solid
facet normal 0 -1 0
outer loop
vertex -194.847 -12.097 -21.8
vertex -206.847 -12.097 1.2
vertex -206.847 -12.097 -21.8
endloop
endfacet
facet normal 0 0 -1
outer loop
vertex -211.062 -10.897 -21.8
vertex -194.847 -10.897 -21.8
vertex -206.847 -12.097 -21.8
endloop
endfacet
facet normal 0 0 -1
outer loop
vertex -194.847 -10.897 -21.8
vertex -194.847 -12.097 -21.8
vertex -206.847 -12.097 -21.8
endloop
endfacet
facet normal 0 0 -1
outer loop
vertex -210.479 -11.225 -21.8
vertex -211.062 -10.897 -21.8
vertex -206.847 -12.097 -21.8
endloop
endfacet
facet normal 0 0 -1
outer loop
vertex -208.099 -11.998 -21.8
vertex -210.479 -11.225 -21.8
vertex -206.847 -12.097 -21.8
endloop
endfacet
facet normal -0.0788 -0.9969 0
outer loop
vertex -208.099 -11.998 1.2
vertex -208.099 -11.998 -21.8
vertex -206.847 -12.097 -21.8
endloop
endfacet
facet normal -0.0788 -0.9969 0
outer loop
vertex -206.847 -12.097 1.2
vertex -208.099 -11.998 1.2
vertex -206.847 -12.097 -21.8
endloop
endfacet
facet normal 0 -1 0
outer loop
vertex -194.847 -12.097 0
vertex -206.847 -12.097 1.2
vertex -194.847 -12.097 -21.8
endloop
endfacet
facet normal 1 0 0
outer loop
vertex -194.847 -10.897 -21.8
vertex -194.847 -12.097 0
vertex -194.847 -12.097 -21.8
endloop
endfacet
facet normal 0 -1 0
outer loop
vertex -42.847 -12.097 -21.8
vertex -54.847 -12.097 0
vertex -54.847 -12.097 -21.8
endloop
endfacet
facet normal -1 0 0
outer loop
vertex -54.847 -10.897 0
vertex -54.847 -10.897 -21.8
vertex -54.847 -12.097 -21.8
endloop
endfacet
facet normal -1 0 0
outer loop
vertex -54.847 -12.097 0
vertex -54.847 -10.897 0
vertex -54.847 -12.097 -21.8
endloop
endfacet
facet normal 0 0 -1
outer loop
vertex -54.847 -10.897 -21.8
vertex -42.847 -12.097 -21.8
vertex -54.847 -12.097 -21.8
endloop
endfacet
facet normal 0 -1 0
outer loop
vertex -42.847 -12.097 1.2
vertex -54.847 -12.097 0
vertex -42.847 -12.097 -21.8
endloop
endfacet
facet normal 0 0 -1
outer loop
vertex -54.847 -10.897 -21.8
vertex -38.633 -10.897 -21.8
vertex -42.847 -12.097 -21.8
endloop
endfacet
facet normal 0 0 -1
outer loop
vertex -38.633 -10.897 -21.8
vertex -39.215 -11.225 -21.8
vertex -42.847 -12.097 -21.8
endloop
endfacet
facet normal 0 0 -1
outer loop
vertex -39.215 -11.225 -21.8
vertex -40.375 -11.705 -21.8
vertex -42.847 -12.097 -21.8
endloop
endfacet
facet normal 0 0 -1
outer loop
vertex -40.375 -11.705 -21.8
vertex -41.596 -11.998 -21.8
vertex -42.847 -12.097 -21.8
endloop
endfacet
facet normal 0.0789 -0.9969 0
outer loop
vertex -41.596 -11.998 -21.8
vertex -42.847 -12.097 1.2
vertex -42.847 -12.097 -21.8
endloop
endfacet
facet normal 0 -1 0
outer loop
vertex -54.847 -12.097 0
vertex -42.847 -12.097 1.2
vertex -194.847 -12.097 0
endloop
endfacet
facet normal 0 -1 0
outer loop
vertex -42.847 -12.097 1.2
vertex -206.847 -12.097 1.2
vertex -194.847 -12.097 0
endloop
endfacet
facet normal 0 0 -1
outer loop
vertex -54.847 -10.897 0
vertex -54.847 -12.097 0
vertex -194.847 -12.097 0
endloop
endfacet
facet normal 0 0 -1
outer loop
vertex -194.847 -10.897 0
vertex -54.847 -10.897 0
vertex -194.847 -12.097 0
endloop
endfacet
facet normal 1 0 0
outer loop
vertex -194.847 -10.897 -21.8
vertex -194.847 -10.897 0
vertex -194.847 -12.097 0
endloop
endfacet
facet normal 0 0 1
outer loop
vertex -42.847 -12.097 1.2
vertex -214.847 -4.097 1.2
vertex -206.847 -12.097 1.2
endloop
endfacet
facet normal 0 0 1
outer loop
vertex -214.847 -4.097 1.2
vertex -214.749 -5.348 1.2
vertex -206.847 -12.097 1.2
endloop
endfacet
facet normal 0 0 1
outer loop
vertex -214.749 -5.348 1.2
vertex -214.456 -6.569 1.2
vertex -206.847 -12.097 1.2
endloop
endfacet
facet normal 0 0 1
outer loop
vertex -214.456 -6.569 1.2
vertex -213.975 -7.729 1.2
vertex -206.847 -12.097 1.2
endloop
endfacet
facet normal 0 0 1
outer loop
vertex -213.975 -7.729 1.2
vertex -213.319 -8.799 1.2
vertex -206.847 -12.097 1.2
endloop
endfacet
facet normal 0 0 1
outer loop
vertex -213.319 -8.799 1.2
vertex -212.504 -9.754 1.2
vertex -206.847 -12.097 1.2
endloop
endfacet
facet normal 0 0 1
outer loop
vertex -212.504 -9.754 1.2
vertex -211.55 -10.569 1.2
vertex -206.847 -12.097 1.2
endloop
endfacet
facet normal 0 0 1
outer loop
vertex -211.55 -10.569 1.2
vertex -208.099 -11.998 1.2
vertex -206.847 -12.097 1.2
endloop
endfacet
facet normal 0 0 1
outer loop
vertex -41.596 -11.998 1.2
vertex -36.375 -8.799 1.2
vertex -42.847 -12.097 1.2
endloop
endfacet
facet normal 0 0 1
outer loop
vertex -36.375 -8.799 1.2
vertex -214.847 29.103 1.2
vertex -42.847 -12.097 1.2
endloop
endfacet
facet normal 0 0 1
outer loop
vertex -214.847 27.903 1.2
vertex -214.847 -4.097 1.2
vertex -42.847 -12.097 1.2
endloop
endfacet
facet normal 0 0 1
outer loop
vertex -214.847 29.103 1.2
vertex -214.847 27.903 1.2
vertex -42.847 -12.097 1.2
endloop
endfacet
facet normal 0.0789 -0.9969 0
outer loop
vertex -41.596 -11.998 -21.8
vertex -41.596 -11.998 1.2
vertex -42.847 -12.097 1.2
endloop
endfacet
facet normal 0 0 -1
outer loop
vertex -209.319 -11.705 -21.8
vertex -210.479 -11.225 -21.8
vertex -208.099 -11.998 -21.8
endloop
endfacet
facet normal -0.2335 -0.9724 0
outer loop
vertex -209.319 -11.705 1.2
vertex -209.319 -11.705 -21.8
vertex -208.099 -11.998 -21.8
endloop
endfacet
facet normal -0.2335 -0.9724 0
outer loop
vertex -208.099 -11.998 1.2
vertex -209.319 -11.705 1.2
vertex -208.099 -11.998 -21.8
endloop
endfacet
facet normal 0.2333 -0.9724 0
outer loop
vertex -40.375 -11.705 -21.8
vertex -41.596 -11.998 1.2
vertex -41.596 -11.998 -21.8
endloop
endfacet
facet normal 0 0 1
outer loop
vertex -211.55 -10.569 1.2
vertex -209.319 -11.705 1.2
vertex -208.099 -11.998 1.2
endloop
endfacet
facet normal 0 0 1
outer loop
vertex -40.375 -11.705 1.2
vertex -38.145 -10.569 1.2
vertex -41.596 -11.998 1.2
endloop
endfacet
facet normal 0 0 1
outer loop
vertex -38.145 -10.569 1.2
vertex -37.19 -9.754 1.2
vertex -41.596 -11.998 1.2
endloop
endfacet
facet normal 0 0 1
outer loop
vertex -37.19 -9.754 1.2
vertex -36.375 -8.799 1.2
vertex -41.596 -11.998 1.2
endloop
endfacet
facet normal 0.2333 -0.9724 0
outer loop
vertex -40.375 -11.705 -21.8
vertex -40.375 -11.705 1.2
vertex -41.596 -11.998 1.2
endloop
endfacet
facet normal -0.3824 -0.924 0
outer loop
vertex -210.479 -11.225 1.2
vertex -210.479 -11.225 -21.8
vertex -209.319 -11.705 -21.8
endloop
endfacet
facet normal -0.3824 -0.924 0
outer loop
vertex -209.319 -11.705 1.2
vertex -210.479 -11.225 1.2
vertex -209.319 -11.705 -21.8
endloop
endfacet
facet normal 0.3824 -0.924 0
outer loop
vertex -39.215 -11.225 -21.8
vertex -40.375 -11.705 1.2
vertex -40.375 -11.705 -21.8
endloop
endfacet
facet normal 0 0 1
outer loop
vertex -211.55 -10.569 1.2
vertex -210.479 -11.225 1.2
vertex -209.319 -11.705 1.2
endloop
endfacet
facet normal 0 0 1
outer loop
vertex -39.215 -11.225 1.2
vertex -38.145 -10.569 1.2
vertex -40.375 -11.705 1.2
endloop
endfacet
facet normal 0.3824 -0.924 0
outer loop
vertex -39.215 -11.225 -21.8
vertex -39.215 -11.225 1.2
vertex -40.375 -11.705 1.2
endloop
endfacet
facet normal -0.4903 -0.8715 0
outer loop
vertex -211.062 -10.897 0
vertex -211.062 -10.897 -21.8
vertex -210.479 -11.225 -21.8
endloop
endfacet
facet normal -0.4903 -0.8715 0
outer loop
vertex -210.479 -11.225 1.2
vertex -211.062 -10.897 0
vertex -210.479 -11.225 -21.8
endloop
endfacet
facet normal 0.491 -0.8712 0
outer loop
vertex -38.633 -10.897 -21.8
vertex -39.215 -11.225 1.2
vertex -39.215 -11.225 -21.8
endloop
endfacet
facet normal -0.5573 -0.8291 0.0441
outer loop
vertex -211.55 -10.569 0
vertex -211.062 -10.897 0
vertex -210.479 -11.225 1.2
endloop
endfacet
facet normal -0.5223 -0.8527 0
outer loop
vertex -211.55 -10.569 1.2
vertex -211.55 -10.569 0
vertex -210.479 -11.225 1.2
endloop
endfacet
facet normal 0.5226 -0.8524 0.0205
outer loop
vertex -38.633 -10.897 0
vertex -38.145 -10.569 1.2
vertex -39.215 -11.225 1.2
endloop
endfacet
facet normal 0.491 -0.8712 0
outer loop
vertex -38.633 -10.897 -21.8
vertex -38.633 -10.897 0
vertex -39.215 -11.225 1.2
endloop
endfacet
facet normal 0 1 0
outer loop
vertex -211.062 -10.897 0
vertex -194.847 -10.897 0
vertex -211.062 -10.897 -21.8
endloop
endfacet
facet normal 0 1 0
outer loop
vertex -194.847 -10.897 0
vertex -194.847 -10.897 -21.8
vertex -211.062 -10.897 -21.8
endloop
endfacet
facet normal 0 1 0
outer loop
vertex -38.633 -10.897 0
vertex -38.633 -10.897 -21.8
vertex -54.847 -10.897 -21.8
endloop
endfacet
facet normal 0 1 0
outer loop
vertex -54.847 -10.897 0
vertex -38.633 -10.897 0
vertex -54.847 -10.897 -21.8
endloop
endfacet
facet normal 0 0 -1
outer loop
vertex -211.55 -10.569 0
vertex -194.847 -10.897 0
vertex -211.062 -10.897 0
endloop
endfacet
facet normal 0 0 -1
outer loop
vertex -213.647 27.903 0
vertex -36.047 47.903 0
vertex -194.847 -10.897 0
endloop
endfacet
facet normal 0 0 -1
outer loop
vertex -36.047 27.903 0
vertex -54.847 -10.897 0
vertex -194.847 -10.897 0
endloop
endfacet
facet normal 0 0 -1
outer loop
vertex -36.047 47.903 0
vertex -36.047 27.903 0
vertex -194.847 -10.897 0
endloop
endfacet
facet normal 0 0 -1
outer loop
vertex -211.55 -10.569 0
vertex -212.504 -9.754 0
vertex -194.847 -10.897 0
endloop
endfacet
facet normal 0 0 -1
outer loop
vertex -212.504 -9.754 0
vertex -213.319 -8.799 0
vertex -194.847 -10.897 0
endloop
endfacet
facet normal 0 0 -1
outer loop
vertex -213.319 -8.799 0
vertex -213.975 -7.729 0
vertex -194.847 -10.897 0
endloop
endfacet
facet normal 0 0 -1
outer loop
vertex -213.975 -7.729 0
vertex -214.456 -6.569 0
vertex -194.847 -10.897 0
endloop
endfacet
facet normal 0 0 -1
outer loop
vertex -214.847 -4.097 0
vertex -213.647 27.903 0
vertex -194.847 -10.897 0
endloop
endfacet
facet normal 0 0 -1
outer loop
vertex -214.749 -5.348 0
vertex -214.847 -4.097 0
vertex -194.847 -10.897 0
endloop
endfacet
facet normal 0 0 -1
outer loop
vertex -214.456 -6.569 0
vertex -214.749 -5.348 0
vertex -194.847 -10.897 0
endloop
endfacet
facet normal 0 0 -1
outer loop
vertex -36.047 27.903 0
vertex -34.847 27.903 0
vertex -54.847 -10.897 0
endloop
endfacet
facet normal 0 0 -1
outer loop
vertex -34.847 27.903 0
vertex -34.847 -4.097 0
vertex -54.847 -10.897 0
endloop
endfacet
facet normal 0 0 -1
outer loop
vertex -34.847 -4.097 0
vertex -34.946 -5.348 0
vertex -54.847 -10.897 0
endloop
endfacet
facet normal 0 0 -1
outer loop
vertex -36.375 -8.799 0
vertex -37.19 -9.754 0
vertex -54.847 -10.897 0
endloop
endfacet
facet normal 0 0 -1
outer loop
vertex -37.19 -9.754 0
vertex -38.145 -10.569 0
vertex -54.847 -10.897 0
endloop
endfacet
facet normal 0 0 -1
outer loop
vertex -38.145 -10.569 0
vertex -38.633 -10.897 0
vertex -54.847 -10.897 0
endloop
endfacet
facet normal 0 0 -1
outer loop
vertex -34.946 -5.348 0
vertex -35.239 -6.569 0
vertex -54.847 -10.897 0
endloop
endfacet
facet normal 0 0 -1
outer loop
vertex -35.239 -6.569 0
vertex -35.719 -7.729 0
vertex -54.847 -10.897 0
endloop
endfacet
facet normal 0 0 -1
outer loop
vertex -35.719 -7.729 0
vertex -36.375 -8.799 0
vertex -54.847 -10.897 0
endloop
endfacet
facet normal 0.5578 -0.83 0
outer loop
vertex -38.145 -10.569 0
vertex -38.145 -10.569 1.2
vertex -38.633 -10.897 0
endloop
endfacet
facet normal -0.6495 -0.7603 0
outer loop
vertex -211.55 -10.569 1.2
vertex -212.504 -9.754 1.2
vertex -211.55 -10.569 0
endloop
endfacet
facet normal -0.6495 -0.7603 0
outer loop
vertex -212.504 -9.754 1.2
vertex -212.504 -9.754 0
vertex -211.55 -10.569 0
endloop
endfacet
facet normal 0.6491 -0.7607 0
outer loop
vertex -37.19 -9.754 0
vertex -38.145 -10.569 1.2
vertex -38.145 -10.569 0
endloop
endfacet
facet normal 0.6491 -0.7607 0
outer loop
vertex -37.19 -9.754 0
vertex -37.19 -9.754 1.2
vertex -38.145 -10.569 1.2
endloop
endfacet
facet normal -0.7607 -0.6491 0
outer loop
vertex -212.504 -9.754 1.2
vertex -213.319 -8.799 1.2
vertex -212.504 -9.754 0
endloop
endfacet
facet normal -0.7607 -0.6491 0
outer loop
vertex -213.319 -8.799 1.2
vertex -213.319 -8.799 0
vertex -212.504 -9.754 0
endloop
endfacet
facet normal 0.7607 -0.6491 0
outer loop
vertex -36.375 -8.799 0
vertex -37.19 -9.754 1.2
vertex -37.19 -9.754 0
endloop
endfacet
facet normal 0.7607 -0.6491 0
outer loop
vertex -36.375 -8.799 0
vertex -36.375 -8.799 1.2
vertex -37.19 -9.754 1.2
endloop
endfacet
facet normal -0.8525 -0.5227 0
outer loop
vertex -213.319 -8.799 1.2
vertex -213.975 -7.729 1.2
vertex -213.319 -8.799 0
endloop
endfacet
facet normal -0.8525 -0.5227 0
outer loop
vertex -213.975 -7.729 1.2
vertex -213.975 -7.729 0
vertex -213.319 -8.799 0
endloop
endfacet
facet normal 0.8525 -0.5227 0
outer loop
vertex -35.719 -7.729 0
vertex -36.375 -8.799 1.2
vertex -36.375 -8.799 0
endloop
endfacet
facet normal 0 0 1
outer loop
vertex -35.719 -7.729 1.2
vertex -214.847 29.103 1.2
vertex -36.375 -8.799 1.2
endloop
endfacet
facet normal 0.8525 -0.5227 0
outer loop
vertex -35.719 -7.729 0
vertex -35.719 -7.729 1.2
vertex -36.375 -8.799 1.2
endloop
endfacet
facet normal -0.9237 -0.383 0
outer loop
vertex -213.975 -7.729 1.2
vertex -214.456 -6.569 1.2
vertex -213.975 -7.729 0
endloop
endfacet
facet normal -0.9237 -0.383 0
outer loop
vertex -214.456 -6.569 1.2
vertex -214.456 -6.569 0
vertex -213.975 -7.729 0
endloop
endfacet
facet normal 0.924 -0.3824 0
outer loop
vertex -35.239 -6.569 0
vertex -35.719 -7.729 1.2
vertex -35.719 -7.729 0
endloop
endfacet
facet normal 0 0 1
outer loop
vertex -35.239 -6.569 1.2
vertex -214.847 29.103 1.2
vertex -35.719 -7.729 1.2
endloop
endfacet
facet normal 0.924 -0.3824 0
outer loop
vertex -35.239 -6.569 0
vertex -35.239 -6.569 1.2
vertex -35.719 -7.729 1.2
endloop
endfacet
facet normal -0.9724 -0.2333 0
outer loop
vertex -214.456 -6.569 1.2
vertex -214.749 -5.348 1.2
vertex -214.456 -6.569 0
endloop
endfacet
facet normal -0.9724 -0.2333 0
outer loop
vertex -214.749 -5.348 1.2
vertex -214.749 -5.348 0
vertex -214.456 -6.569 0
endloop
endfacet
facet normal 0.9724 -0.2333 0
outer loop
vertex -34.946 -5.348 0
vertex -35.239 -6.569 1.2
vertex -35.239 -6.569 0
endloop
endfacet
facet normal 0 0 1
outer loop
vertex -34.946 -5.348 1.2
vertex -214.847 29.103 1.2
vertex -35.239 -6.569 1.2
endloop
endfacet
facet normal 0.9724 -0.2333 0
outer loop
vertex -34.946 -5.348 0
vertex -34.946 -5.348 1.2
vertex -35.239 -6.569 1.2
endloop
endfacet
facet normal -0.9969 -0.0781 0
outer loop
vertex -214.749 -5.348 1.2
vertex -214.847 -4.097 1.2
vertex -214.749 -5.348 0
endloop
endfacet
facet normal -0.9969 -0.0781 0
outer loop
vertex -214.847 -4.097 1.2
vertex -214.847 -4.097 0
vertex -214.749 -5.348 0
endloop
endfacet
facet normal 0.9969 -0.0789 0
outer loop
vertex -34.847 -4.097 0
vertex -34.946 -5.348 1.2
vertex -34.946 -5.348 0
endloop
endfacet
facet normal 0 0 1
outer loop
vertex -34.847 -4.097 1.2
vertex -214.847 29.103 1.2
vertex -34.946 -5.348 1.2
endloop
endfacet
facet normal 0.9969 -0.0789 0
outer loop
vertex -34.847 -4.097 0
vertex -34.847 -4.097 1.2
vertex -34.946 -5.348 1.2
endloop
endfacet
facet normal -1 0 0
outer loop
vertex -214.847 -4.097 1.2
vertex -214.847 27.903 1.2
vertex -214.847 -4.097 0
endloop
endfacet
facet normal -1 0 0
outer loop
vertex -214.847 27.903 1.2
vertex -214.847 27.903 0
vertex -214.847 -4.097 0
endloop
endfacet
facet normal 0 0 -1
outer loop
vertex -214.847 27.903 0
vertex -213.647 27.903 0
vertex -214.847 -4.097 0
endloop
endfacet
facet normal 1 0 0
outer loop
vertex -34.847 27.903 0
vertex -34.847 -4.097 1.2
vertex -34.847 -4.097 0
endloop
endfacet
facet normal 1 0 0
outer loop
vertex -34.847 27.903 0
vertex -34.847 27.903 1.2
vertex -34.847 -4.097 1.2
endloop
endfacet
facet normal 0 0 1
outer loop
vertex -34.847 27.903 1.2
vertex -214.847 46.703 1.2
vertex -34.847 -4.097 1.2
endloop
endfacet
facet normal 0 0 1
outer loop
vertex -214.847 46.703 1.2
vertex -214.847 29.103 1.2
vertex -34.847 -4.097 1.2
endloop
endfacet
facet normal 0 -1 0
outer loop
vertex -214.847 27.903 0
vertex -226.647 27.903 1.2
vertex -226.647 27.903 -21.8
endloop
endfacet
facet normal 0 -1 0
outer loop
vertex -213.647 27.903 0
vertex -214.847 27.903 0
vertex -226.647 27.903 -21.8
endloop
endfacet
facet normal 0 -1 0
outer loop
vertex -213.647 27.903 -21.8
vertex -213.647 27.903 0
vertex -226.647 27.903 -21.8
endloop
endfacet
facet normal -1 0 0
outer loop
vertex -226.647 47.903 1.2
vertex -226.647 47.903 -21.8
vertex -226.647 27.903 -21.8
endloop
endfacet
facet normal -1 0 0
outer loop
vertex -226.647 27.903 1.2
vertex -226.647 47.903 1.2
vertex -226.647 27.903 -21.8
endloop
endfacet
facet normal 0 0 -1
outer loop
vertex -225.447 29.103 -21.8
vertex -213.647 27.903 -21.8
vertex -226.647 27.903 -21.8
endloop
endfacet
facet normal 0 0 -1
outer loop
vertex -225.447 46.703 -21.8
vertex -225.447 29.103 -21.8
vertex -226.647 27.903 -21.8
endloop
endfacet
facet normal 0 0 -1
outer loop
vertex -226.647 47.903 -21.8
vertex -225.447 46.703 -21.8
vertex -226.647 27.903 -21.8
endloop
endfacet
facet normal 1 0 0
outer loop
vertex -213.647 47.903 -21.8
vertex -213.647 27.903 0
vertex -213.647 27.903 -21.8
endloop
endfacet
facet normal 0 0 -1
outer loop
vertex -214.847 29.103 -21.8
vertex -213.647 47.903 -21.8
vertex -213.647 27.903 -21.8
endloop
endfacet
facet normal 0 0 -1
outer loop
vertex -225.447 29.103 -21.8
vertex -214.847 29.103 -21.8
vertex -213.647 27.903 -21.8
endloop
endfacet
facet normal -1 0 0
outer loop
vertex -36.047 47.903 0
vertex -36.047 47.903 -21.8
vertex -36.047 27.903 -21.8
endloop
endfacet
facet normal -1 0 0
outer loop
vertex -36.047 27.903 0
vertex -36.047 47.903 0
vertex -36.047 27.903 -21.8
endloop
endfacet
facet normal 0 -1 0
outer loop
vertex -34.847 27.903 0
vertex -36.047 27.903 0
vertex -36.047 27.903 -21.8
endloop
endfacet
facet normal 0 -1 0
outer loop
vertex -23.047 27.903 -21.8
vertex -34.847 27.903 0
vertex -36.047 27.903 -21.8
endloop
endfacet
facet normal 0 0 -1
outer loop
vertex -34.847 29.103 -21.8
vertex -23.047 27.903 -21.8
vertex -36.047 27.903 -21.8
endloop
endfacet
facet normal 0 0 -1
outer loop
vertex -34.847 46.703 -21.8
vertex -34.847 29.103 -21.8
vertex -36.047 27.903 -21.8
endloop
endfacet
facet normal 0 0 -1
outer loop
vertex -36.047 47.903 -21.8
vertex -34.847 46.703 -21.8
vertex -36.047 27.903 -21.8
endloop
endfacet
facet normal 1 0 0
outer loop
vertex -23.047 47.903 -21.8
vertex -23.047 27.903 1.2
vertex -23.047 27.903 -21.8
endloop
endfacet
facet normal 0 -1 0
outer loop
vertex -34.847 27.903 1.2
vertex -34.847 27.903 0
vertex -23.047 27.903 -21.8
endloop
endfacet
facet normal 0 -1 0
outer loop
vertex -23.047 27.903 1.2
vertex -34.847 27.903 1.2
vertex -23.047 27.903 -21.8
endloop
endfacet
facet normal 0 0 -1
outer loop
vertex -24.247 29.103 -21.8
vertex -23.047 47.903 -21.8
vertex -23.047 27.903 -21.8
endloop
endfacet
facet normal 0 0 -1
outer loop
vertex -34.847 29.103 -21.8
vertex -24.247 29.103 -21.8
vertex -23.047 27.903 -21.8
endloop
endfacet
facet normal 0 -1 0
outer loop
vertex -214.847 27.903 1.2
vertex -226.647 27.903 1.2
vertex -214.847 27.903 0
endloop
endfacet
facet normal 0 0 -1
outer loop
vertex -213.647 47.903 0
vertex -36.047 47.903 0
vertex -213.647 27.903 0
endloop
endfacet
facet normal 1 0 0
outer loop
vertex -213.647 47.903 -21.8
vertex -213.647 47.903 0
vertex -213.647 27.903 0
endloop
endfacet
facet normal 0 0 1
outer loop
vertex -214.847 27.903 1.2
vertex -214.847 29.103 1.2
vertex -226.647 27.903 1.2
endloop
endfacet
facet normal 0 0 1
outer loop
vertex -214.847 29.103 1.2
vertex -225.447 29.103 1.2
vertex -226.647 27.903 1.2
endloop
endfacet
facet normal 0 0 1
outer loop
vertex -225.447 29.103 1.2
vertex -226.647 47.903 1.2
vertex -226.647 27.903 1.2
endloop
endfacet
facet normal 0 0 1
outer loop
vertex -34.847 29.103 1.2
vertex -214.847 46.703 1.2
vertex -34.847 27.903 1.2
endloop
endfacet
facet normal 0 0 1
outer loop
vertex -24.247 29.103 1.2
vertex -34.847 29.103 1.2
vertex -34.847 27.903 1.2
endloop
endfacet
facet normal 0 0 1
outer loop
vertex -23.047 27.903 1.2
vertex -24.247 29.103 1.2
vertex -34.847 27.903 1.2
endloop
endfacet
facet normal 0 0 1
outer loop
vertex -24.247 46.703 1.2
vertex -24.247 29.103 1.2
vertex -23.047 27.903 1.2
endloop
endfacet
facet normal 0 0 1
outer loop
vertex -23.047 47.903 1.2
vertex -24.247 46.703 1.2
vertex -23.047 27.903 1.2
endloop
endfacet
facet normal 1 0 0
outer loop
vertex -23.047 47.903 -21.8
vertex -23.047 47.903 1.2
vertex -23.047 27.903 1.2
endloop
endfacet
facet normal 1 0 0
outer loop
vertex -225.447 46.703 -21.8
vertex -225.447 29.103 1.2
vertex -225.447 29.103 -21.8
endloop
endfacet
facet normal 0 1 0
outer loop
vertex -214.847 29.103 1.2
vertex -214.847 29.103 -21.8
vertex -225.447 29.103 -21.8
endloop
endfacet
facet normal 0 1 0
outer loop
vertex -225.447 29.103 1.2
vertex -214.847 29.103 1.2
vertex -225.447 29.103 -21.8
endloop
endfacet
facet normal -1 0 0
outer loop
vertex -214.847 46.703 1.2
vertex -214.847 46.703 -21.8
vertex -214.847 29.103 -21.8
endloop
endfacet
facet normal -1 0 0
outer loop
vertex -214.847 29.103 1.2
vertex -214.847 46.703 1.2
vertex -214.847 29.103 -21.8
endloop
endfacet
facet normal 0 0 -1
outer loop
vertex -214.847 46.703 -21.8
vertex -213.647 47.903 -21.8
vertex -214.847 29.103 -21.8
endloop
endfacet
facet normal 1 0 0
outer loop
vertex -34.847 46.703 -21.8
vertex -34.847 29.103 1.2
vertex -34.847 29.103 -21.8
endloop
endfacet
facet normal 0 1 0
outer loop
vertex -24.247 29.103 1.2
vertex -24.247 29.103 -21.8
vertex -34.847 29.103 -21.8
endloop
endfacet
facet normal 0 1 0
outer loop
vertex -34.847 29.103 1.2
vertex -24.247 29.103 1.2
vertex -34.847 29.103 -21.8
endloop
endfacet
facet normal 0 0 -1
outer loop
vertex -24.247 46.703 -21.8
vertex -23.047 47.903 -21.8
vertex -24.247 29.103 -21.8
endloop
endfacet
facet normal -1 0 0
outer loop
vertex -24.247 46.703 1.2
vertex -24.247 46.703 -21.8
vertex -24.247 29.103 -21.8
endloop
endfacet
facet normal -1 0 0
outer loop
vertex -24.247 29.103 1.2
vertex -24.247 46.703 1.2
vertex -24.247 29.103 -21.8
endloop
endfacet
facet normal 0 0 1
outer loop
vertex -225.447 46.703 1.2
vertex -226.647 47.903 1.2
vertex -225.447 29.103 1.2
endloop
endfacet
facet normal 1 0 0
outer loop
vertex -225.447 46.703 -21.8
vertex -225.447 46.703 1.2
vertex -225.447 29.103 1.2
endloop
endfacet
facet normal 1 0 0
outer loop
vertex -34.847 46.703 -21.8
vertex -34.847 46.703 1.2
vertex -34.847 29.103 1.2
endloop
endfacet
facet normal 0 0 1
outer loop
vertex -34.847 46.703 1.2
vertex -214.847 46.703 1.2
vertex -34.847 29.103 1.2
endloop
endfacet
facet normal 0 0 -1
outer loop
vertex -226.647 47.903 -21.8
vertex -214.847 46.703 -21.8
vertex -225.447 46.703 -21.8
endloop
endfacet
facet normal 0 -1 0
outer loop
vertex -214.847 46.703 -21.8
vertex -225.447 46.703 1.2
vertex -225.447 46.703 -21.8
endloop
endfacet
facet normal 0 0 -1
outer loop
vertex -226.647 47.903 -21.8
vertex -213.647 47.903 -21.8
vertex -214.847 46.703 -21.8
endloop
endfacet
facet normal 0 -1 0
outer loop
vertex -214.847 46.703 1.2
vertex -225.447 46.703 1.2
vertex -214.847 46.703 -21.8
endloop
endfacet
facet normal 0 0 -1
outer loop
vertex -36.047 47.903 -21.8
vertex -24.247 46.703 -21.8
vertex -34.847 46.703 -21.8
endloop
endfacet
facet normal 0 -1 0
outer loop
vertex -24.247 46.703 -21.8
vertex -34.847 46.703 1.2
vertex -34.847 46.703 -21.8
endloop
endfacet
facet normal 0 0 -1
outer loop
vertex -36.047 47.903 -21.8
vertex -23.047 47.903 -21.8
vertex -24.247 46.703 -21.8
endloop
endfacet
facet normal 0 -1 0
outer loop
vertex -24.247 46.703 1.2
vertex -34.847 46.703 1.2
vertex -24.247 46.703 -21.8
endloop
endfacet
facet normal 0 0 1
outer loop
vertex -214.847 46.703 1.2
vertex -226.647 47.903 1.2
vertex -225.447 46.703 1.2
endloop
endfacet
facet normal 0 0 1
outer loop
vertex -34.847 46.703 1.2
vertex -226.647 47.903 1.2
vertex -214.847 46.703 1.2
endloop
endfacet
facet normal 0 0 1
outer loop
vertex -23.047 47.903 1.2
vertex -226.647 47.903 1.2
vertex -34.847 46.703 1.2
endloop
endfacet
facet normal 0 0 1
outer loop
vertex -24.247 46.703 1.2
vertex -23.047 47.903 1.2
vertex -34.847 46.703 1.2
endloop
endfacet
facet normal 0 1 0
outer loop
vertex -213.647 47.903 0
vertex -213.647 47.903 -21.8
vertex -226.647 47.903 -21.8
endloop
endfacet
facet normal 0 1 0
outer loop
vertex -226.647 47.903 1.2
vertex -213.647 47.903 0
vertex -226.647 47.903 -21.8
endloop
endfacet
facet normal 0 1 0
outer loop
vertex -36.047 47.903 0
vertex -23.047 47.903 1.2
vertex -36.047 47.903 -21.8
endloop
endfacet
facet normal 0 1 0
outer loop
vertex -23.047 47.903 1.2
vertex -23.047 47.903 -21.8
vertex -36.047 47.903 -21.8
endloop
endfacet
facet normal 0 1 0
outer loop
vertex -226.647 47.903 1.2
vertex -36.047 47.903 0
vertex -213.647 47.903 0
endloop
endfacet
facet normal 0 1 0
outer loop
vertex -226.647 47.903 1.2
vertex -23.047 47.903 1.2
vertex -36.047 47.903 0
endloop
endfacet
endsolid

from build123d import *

# Parameters (mm, degrees)
CROQUIS1_W              = 180
CROQUIS1_H              = 60
SALIENTE_EXTRUIR1_DEPTH = 1.2
CROQUIS2_W              = 20
CROQUIS2_H              = 1.2
CROQUIS2_W_2            = 13
CROQUIS2_H_2            = 20
CROQUIS2_W_3            = 10.6
CROQUIS2_H_3            = 17.6
SALIENTE_EXTRUIR2_DEPTH = 23
REDONDEO1_R             = 8


with BuildPart() as part:
    # Croquis1 → Saliente-Extruir1 (new body)
    with BuildSketch(Plane.XY):
        with Locations((-124.847250917, 17.903225806)):
            Rectangle(CROQUIS1_W, CROQUIS1_H)
    extrude(amount=SALIENTE_EXTRUIR1_DEPTH)

    # Croquis2 → Saliente-Extruir2 (add)
    # profile 1 of 4: a face of its own
    with BuildSketch(Plane.XY.offset(1.2)):
        with Locations((-204.847250917, -11.496774194)):
            Rectangle(CROQUIS2_W, CROQUIS2_H)
    # profile 2 of 4: a face of its own
    with BuildSketch(Plane.XY.offset(1.2)):
        with Locations((-220.147250917, 37.903225806)):
            Rectangle(CROQUIS2_W_2, CROQUIS2_H_2)
        with Locations((-220.147250917, 37.903225806)):
            Rectangle(CROQUIS2_W_3, CROQUIS2_H_3, mode=Mode.SUBTRACT)
    # profile 3 of 4: a face of its own
    with BuildSketch(Plane.XY.offset(1.2)):
        with Locations((-29.547250917, 37.903225806)):
            Rectangle(CROQUIS2_W_2, CROQUIS2_H_2)
        with Locations((-29.547250917, 37.903225806)):
            Rectangle(CROQUIS2_W_3, CROQUIS2_H_3, mode=Mode.SUBTRACT)
    # profile 4 of 4: a face of its own
    with BuildSketch(Plane.XY.offset(1.2)):
        with Locations((-44.847250917, -11.496774194)):
            Rectangle(CROQUIS2_W, CROQUIS2_H)
    extrude(amount=-SALIENTE_EXTRUIR2_DEPTH)

    # Redondeo1
    redondeo1_edges = [part.edges().sort_by_distance(p)[0] for p in [
        (-34.847250917, -12.096774194, -10.3),
        (-214.847250917, -12.096774194, -10.3),
    ]]
    fillet(redondeo1_edges, radius=REDONDEO1_R)


solid = part.part
